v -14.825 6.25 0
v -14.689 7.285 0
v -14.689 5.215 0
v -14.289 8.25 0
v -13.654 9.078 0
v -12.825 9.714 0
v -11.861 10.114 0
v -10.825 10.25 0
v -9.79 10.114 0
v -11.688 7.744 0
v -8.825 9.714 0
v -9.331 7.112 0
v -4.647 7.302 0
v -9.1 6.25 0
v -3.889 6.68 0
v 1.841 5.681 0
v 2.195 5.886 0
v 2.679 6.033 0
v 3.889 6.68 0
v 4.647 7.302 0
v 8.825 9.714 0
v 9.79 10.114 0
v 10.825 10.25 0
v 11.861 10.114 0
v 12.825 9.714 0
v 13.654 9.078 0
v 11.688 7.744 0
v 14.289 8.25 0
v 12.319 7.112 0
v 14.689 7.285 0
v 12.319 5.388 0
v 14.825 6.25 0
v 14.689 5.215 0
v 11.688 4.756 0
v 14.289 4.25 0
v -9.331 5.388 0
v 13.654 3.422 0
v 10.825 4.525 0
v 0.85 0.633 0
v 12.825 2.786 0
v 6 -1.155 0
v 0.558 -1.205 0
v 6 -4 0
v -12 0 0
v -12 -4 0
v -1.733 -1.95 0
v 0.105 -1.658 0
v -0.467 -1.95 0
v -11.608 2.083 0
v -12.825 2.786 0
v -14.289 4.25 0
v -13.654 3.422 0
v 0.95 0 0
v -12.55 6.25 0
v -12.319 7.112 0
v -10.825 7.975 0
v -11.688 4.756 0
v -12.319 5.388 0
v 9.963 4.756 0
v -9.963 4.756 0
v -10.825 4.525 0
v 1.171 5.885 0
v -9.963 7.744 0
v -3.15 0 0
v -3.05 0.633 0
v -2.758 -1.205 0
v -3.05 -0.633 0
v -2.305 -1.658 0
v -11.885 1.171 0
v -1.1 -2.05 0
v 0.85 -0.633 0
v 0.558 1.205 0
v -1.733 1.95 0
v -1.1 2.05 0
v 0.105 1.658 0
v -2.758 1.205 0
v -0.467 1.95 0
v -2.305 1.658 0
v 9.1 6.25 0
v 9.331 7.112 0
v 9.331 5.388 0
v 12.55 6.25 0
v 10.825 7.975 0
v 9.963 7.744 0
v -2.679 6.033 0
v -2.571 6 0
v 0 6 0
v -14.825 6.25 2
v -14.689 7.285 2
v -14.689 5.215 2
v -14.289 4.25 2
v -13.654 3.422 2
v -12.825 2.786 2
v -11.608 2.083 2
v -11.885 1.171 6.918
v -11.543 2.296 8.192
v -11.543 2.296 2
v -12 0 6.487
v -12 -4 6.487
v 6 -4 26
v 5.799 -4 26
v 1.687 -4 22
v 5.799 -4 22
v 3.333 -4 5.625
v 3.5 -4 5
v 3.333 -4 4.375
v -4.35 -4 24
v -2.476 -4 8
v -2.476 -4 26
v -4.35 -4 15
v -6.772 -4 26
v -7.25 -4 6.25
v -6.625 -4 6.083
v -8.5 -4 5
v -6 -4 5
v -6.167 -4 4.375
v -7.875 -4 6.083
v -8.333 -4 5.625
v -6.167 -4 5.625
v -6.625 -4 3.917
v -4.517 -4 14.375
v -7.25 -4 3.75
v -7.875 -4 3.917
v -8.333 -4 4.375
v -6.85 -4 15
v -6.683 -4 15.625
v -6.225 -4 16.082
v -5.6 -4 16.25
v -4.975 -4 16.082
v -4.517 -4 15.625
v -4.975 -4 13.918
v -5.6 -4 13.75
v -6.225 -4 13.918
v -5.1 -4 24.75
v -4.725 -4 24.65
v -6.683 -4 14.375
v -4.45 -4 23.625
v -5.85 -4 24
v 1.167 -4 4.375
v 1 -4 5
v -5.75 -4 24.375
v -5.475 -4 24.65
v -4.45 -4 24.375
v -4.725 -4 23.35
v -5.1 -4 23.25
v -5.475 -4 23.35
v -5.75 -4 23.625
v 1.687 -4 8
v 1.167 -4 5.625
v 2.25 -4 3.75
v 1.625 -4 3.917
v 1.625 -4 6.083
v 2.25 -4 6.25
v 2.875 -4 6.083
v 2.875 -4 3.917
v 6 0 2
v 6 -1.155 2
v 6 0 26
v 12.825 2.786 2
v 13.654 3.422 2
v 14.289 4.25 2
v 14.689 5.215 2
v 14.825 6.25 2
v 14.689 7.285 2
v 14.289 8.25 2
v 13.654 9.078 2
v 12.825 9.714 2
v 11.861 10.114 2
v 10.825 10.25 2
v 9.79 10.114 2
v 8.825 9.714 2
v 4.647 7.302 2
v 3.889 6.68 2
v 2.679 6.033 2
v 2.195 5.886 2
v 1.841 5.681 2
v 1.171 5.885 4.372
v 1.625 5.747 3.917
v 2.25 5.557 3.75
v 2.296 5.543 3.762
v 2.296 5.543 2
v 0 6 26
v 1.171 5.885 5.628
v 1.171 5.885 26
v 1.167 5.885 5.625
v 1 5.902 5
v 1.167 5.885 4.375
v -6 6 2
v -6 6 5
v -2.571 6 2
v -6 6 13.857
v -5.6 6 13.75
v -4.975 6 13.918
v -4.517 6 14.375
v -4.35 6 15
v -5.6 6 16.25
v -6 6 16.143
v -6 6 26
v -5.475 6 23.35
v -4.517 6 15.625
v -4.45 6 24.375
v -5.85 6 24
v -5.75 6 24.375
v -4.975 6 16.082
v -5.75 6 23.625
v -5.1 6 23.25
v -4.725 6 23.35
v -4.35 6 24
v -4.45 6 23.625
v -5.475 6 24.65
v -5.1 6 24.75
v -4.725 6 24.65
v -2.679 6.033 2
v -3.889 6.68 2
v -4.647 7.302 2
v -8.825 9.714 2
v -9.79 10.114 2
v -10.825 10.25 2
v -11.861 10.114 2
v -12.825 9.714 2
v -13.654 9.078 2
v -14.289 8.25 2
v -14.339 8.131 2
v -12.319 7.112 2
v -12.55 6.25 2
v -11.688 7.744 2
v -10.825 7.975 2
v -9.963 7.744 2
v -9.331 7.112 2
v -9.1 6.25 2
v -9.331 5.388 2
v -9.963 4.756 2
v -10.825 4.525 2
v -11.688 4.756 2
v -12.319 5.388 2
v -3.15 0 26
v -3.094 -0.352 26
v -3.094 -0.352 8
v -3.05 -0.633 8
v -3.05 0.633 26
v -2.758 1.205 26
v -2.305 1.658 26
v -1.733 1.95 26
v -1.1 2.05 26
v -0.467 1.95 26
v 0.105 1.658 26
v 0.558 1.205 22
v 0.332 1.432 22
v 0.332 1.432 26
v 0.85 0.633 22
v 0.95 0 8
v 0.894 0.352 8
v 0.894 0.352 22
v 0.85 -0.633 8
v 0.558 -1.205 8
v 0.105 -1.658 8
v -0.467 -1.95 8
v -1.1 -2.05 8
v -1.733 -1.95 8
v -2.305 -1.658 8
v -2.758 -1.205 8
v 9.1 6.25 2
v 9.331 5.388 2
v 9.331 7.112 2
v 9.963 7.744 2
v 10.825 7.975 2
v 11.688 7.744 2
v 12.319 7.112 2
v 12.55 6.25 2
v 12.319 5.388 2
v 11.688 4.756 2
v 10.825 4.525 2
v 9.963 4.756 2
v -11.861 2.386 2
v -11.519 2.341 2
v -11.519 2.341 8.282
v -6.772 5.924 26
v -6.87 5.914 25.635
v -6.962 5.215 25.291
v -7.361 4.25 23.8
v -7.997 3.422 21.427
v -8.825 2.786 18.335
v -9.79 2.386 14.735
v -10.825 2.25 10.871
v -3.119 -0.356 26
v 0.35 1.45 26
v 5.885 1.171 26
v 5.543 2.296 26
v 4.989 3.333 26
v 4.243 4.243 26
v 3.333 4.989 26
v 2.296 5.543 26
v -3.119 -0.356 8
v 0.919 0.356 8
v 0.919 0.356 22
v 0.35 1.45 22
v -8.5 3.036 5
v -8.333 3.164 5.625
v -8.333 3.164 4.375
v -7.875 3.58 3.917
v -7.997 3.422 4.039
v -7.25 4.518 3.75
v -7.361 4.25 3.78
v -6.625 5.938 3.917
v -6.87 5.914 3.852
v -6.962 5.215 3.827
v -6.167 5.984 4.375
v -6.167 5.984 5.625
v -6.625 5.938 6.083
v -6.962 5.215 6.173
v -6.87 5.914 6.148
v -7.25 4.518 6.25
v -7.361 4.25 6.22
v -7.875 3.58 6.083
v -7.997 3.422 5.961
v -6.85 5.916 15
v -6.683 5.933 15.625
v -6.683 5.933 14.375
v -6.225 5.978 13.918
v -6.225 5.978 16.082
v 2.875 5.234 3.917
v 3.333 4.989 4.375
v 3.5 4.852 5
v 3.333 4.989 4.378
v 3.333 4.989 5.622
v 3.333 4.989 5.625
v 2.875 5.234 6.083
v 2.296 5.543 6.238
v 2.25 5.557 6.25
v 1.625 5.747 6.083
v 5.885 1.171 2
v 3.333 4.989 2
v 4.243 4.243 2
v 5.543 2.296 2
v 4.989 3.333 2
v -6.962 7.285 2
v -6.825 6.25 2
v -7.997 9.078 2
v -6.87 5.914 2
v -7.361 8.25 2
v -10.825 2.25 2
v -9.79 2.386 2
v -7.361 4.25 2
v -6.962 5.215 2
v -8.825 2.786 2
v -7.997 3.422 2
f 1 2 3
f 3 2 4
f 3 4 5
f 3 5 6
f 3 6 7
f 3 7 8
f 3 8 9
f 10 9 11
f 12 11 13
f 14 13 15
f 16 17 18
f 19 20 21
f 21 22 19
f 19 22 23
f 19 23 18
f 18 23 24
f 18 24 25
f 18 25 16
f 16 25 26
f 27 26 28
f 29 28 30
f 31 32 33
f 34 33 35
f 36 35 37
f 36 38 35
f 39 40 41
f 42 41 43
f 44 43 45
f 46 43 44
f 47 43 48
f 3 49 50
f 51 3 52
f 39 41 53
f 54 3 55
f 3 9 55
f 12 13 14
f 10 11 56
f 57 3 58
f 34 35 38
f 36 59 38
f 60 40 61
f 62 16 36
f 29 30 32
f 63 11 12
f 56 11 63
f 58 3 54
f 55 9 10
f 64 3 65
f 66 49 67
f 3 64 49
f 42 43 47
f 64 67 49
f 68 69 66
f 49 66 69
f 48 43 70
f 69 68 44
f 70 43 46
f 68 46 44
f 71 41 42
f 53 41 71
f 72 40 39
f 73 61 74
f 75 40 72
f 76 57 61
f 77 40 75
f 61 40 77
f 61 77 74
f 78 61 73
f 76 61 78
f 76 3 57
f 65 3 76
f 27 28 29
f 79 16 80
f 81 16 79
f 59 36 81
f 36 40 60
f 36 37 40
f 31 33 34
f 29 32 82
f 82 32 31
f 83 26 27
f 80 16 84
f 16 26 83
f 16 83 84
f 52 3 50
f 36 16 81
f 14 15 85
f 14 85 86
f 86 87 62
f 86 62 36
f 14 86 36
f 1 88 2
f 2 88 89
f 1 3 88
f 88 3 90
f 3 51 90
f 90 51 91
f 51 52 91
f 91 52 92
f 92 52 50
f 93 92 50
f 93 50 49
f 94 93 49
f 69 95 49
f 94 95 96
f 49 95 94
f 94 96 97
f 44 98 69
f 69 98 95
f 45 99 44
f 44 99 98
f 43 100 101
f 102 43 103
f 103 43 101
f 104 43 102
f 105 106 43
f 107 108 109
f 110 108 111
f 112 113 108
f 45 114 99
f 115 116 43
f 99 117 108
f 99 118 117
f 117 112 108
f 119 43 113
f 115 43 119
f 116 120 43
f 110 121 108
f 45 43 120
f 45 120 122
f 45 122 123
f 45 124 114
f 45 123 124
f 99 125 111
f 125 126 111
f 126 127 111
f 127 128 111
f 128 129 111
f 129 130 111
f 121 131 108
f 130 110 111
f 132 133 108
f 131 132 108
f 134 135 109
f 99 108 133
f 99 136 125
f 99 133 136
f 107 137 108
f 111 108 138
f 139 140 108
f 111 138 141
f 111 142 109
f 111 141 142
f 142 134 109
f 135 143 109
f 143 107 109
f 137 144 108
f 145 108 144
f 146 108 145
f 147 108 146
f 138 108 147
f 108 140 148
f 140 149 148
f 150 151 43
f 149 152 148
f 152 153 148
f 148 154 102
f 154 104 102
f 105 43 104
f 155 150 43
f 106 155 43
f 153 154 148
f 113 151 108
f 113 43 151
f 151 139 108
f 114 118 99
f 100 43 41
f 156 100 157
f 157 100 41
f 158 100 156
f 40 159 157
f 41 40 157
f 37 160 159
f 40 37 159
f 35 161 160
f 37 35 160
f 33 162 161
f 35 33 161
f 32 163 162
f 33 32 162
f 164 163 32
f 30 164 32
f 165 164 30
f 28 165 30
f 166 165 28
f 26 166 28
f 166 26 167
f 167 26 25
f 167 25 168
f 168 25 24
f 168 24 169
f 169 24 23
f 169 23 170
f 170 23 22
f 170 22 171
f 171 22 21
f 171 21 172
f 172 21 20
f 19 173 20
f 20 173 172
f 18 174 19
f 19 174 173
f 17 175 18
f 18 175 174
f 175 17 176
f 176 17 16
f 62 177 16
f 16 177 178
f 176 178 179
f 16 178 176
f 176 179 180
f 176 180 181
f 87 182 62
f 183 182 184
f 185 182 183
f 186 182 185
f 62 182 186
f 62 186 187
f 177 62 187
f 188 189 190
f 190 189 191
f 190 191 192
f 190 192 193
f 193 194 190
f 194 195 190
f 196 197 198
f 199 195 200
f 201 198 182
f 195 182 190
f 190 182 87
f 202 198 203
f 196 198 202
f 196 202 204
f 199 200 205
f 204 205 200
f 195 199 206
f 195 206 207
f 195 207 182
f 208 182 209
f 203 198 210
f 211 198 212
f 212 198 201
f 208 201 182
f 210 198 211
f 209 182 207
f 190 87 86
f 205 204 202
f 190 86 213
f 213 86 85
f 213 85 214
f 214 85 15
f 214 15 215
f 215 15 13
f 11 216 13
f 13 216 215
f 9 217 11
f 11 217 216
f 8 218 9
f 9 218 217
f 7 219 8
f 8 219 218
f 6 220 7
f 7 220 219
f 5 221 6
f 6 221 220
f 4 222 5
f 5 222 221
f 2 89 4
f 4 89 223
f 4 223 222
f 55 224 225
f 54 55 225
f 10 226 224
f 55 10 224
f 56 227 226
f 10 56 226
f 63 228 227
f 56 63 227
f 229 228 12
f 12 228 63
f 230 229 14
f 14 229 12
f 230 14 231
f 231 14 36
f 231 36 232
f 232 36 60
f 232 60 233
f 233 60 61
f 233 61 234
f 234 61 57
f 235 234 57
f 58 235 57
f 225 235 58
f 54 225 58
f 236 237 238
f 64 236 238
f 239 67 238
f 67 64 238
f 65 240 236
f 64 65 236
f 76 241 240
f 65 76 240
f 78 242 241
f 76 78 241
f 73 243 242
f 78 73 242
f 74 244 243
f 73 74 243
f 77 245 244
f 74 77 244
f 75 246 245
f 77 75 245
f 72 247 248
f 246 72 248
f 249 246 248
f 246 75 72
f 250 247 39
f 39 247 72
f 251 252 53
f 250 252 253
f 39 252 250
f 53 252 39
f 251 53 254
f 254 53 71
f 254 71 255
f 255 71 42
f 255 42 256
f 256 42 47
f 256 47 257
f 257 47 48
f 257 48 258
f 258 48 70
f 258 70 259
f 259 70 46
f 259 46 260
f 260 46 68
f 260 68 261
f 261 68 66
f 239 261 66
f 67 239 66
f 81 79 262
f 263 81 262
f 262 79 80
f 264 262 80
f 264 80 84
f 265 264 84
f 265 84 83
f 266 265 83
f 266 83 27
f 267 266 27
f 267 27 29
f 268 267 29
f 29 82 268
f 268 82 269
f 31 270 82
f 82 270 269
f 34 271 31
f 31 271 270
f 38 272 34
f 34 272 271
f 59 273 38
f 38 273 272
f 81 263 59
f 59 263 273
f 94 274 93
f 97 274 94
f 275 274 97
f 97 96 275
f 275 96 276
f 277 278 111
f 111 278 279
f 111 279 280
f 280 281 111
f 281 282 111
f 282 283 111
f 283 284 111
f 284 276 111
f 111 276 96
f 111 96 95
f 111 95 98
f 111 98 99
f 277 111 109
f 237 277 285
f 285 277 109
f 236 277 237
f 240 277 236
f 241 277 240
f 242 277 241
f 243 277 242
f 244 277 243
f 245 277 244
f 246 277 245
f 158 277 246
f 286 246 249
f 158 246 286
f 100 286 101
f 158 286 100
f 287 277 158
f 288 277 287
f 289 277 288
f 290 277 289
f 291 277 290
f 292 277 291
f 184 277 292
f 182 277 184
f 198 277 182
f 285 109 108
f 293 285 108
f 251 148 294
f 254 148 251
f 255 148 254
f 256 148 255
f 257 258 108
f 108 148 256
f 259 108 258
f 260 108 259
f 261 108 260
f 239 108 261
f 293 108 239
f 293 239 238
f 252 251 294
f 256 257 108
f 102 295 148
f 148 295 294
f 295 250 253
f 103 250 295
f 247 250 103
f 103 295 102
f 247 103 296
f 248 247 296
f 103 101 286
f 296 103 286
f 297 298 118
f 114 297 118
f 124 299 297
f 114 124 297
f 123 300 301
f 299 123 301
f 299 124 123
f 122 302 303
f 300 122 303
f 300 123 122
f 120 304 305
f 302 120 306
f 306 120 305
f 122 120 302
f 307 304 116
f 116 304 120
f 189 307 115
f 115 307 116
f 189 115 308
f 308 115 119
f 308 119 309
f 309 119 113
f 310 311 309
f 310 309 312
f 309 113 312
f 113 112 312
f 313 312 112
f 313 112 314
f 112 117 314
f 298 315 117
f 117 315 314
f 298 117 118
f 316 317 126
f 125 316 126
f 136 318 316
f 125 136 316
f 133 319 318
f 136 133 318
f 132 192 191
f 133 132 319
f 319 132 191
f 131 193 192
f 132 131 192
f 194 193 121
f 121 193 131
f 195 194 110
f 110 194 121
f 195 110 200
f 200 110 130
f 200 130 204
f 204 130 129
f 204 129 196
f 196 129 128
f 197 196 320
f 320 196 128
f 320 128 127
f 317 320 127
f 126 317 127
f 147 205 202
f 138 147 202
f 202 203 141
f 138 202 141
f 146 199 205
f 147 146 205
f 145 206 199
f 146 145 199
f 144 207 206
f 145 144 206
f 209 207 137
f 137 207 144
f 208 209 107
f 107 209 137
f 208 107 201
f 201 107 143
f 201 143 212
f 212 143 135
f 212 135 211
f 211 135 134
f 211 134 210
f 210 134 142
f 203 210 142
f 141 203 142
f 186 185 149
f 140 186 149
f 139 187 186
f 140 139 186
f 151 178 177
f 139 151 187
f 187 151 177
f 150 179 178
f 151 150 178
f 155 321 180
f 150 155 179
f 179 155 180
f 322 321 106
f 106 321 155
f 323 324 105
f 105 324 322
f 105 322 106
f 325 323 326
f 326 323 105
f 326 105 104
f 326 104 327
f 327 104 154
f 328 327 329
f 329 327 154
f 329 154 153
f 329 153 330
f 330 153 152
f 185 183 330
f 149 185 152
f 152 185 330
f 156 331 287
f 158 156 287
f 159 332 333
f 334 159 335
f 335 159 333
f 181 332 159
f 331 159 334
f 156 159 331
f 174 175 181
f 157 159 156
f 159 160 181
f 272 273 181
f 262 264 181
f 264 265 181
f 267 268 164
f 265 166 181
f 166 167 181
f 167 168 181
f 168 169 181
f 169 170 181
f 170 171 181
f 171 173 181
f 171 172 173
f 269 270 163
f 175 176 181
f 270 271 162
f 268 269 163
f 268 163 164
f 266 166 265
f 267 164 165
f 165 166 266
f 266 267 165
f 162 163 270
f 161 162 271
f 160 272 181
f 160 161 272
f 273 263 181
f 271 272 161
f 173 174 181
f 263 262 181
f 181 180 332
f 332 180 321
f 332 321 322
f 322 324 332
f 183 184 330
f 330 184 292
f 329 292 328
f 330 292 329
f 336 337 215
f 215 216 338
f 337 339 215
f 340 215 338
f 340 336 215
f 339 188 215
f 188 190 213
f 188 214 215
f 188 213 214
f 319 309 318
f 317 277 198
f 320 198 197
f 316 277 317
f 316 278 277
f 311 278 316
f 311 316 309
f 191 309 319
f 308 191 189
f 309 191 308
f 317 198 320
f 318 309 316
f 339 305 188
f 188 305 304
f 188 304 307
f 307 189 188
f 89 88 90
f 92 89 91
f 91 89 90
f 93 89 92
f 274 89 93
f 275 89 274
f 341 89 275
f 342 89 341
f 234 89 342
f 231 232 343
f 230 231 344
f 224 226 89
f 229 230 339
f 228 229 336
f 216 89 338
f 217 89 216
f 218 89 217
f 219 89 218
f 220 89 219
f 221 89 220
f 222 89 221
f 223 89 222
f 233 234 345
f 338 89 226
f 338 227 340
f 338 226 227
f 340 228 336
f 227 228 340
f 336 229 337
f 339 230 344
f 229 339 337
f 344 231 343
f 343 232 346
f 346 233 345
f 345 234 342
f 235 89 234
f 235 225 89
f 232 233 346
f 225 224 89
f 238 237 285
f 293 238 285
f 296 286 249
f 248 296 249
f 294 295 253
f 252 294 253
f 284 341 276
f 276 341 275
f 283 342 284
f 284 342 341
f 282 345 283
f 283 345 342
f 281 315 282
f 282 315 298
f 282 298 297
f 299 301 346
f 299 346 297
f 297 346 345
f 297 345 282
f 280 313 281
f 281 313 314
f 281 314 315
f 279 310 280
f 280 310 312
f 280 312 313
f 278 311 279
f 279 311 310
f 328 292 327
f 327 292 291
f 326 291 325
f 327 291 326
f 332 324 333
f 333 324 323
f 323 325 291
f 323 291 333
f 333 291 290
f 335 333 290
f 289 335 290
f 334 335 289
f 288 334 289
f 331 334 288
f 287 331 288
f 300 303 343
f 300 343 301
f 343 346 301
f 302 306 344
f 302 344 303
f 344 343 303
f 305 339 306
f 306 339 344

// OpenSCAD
// file: microswitch.scad
// Don't print this file, purchase real micro switches
// e.g. Honeywell ZM10B10A01 or OMRON SS-5 or similar.

module microswitch() {
  difference() {
    union() {
      translate([0, 0, 2.5])
        cube([19.8, 6, 10], center=true);
      translate([3, 0.5, 6])
        cube([2, 3.5, 5], center=true);
      for (x = [-8, -1, 8]) {
        translate([x, 0, 0])
          cube([0.6, 3.2, 13], center=true);
      }
    }
    for (x = [-9.5/2, 9.5/2]) {
      translate([x, 0, 0]) rotate([90, 0, 0])
        cylinder(r=2.5/2, h=20, center=true, $fn=12);
    }
  }
}

microswitch();
// file: configuration.scad
// Increase this if your slicer or printer make holes too tight.
extra_radius = 0.1;

// OD = outside diameter, corner to corner.
m3_nut_od = 6.1;
m3_nut_radius = m3_nut_od/2 + 0.2 + extra_radius;
m3_washer_radius = 3.5 + extra_radius;

// Major diameter of metric 3mm thread.
m3_major = 2.85;
m3_radius = m3_major/2 + extra_radius;
m3_wide_radius = m3_major/2 + extra_radius + 0.2;

// NEMA17 stepper motors.
motor_shaft_diameter = 5;
motor_shaft_radius = motor_shaft_diameter/2 + extra_radius;

// Frame brackets. M3x8mm screws work best with 3.6 mm brackets.
thickness = 3.6;

// OpenBeam or Misumi. Currently only 15x15 mm, but there is a plan
// to make models more parametric and allow 20x20 mm in the future.
extrusion = 15;

// Placement for the NEMA17 stepper motors.
motor_offset = 44;
motor_length = 47;

probe_tunnel_radius = 1.25 + extra_radius;
probe_excentricity = 5;
// main file
include <configuration.scad>;

use <microswitch.scad>;

height = 26;
height2 = 26;
tunnel = 3.9;           // approx. diameter of the hex trigger (mm)
retracted_angle = 35;   // angle of the hex when retracted (degrees)
d_spring = 1.5;         // diameter of the spring (mm)
face_offset = 4;

module foot() {
  difference() {
    translate([12.5, 0, 0]) rotate([0, 0, -60])
      translate([-12.5, 0, 1]) rotate([0, 0, -60]) union() {
        cylinder(r=4, h=2, center=true, $fn=24);
        translate([10, 0, 0])
          cube([20, 8, 2], center=true);
    }
    translate([0, -10, 0])
      cube([40, 20, 20], center=true);
    translate([12.5, 0, 0]) {
      // Space for bowden push fit connector.
      cylinder(r=7, h=3*height, center=true, $fn=32);
      for (a = [60:120:359]) {
	    rotate([0, 0, a]) translate([-12.5, 0, 0])
          cylinder(r=m3_wide_radius, h=20, center=true, $fn=12);
      }
    }
  }
}

module retractable() {
  difference() {
    union() {
      translate([0, 0, height/2])
        cylinder(r=6, h=height, center=true, $fn=32);
      translate([0, -3, height/2])
        cube([12, 6, height], center=true);
      // Lower part on the left.
      translate([-6, 0, height2/2])
        cylinder(r=6, h=height2, center=true, $fn=32);
      translate([-3, 0, height2/2])
        cube([6, 12, height2], center=true);
      translate([-3, -3, height2/2])
        cube([18, 6, height2], center=true);
      // Feet for vertical M3 screw attachment.
      rotate([0, 0, 90]) {
        foot();
        scale([1, -1, 1]) foot();
      }
    }
    translate([-19, 0, height/2+6]) rotate([0, 15, 0])
      cube([20, 20, height], center=true);
    translate([-1.1,0,0]) cylinder(r=tunnel/2+extra_radius, h=3*height, center=true, $fn=20);
    translate([-1.1, 0, 0]) rotate(v=[0,0,1], a=10) translate([0, -6, height/2+8])
      cube([tunnel+2*extra_radius, 12, height], center=true);
    translate([-1.1, 0, 0]) rotate([0, 0, 10+retracted_angle]) translate([0, -6, height/2+22])
      cube([tunnel+2*extra_radius, 12, height], center=true);

    // Safety needle spring.
    translate([-1.1,0,0]) translate([-4.5, 0, height-11]) rotate([90, 0, 0])
      cylinder(r=2.5/2, h=40, center=true, $fn=12);
    translate([-1.1,0,0]) translate([-4, 0, height-2]) rotate([90, 0, 0])
      cylinder(r=d_spring/2, h=40, center=true, $fn=12);

    // Effector screw heads.
    rotate([0, 0, 330]) translate([-12.5, 0, 2])
      cylinder(r=4, h=30, $fn=24);
    // Flat front face.
    translate([0, -face_offset-10, height/2]) difference() {
      cube([30, 20, 2*height], center=true);
    }
    // Sub-miniature micro switch.
    translate([-2.5, -face_offset-3, 5]) {
      % microswitch();
      for (x = [-9.5/2, 9.5/2]) {
        translate([x, 0, 0]) rotate([90, 0, 0])
          cylinder(r=2.5/2, h=40, center=true, $fn=12);
      }
    }
  }
}

retractable();
